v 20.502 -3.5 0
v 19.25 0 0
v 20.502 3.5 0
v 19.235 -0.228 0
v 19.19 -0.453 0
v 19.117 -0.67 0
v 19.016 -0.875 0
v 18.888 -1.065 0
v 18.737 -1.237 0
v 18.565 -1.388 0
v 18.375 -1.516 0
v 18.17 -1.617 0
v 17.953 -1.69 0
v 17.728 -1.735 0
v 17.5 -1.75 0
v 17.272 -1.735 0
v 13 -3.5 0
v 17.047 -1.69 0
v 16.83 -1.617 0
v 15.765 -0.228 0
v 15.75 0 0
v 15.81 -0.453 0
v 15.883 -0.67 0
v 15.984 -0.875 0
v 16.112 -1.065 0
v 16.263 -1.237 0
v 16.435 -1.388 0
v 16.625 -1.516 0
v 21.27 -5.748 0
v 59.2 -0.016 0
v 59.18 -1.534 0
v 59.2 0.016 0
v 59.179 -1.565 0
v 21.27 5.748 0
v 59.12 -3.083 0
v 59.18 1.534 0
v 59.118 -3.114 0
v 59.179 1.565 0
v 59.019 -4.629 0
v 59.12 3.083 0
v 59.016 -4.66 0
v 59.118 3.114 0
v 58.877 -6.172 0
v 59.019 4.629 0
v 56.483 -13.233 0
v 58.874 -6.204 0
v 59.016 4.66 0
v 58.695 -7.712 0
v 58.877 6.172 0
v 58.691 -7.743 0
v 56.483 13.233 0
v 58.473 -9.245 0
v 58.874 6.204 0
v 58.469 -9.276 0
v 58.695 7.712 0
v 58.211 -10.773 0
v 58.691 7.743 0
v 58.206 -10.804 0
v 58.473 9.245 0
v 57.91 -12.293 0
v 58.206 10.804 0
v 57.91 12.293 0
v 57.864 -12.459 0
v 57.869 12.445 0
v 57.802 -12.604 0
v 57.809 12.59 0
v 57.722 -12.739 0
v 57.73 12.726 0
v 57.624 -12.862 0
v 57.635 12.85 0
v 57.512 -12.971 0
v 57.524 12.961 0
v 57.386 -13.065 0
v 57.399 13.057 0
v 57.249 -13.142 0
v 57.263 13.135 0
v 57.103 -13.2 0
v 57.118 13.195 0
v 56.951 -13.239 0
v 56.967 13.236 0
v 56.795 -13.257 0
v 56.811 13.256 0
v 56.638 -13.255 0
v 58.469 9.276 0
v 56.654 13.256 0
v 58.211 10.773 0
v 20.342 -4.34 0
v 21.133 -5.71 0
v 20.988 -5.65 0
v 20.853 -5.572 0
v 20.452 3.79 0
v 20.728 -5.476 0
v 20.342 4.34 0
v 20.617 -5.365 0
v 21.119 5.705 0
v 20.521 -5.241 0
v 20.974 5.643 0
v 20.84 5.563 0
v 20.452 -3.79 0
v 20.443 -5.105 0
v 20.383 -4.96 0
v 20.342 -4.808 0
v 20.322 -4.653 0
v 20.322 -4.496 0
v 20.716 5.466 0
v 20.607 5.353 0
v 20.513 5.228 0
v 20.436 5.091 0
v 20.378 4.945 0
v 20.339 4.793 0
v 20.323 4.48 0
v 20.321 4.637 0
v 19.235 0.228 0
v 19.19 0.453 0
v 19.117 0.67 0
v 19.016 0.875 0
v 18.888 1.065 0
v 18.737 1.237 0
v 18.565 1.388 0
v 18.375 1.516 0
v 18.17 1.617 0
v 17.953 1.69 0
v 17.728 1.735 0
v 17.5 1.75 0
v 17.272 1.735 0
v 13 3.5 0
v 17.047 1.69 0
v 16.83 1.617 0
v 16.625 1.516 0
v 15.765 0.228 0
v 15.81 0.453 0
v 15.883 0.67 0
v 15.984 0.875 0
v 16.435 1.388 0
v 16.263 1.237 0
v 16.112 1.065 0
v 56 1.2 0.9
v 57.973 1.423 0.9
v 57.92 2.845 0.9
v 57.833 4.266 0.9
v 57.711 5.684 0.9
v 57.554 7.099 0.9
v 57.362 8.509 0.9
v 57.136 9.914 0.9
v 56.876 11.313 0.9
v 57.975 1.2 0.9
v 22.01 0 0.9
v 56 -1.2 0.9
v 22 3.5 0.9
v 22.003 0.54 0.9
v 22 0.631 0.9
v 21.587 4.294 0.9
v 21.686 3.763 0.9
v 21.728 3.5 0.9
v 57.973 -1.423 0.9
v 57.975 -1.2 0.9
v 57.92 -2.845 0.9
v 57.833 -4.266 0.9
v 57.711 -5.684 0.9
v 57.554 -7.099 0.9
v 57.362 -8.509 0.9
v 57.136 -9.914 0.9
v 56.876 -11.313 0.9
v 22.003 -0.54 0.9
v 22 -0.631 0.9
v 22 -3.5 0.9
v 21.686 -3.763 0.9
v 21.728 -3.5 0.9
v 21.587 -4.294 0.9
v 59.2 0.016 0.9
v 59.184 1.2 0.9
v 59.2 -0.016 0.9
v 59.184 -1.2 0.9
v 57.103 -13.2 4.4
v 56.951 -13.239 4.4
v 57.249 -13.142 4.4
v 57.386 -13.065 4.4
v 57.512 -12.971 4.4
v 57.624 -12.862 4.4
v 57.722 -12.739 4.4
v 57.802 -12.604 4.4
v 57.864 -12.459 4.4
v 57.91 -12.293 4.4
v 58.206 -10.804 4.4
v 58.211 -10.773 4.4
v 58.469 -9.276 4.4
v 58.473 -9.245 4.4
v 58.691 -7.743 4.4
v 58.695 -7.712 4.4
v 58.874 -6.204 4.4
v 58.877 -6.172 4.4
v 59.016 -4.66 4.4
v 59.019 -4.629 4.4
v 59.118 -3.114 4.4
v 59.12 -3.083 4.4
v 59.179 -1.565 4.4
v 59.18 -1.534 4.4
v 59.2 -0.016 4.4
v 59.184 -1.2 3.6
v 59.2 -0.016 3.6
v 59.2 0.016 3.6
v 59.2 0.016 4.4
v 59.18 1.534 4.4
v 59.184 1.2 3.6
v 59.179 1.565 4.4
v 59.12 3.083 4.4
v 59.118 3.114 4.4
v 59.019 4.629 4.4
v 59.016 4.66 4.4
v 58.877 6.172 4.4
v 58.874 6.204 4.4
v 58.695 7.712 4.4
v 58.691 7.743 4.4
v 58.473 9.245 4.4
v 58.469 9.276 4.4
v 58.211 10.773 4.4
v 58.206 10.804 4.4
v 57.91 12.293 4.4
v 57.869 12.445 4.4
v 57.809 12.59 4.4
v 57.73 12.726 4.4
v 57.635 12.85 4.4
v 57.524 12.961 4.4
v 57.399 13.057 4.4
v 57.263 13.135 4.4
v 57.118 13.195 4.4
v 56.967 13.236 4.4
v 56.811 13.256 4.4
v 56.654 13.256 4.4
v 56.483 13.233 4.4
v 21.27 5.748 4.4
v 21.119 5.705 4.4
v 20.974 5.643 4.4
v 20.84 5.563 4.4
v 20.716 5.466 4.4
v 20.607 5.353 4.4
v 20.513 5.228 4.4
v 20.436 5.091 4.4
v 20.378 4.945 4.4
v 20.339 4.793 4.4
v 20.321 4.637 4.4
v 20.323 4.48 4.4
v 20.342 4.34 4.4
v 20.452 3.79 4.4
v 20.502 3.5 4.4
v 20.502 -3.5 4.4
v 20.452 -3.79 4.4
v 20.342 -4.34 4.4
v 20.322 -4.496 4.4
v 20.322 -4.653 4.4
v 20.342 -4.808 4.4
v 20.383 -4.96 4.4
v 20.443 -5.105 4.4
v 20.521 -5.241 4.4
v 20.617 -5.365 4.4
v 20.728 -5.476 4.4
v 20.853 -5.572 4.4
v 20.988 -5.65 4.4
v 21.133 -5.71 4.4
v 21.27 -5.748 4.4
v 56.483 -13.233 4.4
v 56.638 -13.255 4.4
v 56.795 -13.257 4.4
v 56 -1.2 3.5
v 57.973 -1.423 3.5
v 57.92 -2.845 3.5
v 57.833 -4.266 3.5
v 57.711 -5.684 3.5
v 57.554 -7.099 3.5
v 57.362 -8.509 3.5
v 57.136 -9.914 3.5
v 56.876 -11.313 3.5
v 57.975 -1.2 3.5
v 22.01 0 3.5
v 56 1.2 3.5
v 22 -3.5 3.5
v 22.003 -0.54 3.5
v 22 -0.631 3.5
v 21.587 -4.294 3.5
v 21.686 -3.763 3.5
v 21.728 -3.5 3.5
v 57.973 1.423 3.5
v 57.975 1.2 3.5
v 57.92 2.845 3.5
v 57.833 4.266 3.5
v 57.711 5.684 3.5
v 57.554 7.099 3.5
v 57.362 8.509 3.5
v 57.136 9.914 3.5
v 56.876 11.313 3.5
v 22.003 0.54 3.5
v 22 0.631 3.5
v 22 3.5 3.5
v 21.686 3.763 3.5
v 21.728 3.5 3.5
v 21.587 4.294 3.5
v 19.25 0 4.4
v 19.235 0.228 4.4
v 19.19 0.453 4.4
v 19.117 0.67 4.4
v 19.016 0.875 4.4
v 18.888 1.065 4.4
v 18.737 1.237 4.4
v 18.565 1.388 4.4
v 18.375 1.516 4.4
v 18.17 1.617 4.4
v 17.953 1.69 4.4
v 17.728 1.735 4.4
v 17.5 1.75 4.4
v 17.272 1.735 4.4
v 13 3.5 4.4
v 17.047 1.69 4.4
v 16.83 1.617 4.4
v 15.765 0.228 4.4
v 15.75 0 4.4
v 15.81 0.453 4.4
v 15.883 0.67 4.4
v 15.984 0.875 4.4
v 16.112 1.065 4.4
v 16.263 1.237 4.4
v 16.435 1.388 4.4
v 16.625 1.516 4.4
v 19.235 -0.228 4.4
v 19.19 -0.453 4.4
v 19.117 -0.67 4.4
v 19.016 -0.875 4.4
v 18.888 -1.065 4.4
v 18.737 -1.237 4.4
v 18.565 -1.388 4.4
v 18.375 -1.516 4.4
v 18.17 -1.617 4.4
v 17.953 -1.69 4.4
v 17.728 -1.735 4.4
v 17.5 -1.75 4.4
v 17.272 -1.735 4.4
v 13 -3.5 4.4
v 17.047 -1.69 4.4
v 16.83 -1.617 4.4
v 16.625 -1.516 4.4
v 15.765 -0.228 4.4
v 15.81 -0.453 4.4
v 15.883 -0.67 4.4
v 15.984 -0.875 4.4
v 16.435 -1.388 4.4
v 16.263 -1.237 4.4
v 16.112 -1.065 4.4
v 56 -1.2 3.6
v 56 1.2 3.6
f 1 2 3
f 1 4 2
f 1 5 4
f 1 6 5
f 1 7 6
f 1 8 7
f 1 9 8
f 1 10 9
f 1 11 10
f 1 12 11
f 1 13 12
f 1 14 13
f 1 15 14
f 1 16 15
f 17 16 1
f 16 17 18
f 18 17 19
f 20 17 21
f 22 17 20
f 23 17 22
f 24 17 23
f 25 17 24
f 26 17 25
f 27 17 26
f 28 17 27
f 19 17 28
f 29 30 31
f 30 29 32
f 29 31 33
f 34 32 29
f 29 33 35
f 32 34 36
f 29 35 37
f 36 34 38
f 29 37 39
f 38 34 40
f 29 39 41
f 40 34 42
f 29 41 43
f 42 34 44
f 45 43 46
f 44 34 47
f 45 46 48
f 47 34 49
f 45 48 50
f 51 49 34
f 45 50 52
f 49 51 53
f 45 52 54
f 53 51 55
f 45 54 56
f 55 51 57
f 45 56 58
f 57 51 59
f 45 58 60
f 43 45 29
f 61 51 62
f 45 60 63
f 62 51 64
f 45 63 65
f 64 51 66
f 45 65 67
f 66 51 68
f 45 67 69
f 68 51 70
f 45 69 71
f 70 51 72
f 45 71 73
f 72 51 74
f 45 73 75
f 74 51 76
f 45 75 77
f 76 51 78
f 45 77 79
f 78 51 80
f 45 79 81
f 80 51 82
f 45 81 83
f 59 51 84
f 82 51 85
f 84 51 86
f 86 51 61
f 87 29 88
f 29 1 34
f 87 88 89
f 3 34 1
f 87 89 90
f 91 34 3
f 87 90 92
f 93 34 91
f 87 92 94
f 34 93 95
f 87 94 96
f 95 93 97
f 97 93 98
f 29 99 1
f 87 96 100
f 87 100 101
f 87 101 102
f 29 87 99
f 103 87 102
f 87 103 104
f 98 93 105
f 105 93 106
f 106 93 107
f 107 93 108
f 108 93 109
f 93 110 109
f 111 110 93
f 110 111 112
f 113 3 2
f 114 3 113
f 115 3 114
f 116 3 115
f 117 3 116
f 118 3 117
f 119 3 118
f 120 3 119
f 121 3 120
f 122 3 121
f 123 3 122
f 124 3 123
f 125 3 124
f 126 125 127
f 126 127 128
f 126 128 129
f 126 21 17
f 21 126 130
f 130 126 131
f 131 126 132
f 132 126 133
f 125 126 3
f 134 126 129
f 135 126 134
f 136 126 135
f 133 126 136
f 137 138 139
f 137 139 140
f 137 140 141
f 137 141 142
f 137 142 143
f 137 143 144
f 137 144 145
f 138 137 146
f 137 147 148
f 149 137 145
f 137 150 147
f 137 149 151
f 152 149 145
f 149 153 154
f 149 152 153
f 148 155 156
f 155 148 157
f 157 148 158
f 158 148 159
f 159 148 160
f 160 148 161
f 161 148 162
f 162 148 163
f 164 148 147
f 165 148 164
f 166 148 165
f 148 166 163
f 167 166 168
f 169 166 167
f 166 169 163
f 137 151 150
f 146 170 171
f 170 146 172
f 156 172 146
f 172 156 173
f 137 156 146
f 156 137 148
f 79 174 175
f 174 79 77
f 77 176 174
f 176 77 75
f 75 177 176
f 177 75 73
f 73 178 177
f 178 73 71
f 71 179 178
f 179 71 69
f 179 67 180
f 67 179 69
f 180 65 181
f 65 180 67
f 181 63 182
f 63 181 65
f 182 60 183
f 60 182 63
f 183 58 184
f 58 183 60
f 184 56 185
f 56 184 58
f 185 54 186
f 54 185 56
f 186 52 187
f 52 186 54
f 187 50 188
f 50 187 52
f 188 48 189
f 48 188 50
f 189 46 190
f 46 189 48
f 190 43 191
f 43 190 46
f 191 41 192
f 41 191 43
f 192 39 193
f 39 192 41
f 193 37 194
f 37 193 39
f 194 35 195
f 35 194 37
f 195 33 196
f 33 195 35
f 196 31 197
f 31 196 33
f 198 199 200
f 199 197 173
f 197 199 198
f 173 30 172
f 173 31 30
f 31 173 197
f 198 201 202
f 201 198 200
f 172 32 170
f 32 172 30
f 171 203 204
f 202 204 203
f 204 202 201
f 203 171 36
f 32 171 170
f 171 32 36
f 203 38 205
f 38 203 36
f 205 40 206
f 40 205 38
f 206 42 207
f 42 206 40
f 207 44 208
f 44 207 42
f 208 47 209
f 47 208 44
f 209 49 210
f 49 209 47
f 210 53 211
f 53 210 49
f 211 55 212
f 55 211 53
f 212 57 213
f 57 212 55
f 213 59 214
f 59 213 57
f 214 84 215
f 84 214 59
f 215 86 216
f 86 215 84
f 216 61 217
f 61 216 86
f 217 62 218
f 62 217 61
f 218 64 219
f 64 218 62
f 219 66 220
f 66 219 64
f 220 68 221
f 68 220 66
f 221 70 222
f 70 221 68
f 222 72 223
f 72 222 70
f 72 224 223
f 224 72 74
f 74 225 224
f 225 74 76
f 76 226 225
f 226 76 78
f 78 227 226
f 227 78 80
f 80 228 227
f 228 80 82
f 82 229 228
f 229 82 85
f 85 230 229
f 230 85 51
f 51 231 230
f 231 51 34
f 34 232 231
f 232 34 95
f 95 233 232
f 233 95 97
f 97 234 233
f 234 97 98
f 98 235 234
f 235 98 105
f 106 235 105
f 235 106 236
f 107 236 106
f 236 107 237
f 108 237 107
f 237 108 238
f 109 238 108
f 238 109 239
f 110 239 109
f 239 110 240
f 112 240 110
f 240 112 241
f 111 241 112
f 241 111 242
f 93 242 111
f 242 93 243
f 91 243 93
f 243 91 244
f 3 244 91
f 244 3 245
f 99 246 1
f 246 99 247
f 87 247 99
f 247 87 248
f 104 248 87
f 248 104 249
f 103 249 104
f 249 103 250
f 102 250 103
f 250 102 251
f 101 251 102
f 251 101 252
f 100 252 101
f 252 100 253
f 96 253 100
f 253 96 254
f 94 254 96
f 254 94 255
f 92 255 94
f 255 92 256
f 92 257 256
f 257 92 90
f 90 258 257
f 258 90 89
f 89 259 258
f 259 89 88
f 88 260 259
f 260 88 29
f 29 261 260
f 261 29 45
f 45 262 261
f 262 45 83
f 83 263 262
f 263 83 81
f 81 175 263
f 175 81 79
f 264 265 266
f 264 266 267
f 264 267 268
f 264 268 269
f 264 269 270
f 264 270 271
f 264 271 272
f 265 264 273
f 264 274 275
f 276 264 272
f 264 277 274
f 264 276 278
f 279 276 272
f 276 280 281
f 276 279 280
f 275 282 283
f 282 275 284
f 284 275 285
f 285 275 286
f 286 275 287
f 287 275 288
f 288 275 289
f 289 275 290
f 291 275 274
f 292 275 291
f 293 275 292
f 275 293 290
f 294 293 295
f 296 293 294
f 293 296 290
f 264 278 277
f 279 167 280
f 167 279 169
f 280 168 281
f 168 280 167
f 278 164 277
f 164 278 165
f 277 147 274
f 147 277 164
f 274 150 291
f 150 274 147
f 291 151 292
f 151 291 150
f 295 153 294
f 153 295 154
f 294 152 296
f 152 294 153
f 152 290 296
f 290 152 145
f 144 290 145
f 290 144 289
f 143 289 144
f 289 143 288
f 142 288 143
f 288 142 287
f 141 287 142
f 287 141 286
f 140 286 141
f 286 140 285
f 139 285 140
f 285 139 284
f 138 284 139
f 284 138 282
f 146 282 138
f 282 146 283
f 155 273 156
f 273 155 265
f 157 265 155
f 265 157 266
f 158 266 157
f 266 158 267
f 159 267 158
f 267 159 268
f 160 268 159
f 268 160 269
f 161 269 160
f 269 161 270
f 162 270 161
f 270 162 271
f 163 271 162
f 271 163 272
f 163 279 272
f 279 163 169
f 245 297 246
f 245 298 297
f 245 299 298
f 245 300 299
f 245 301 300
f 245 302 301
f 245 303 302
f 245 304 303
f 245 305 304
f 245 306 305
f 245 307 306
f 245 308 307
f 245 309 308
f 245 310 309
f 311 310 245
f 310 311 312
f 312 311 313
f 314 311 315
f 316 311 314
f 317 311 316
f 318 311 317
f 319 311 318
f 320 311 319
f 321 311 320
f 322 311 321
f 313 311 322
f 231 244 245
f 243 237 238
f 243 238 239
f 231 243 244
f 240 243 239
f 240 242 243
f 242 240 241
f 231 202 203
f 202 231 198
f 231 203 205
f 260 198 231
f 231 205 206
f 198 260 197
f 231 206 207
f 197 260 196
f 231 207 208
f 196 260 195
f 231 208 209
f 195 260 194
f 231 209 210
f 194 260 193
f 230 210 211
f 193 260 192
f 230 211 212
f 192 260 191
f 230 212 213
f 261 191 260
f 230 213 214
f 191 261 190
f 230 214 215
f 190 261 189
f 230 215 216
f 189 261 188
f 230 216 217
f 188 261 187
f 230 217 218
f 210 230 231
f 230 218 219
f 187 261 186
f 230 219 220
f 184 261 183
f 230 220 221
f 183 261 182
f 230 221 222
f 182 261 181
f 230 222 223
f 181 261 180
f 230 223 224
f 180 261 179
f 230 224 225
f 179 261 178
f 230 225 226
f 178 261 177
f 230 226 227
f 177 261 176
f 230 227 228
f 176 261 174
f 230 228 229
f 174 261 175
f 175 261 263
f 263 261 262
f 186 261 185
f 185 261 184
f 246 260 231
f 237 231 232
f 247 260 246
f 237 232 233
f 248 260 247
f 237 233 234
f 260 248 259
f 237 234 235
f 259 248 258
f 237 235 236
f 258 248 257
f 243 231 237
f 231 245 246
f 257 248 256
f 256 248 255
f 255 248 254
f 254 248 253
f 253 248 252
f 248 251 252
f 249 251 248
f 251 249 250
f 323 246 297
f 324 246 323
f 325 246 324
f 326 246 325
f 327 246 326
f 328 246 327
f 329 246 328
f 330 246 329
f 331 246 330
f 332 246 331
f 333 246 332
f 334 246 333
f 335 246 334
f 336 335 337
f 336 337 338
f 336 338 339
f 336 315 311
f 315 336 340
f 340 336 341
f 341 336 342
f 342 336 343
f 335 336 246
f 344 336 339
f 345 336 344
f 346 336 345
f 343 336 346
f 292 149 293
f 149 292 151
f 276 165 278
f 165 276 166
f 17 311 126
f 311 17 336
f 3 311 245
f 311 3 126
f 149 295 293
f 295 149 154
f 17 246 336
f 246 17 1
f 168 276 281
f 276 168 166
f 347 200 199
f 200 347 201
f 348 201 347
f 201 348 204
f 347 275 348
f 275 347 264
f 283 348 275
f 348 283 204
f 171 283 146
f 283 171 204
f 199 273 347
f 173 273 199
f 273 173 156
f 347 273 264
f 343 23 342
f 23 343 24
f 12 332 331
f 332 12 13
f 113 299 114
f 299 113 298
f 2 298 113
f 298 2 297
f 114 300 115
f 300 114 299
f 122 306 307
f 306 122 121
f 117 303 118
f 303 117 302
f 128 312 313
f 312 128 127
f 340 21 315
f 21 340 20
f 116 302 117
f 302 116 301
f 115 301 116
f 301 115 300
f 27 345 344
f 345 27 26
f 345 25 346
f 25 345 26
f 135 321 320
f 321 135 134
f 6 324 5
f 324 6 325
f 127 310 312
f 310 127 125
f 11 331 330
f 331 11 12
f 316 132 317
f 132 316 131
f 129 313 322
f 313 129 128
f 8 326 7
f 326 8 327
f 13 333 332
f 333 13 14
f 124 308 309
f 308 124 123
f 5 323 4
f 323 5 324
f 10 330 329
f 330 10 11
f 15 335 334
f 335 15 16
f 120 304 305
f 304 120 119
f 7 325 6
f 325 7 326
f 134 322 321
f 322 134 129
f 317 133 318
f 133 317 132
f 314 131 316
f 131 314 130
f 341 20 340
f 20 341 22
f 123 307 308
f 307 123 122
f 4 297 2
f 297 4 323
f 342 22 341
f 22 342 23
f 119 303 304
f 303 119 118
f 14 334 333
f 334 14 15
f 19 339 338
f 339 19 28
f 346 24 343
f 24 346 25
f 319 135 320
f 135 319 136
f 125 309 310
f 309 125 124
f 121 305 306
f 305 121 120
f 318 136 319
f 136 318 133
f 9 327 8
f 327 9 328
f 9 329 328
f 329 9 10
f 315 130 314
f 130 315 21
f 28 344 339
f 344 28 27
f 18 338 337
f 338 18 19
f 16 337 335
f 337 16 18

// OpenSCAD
// file: parameters.scad
// =============================================================================
// Gen-U Vernier + flux-claw AFPM — WOUND-AWARE (HARD GATE)
// 16-pole rotor (16×Ø20) + 48×Ø5 claw/edge flux assists; 12-coil vernier stator
// Optional mild-steel washer registers in BOM for claw return paths.
// =============================================================================

wire_awg            = 26;
wire_od             = 0.45;
turns               = 140;      // vernier: more turns for low-RPM band
fill                = 0.70;
layers_per_face     = 2;
wind_build_axial    = layers_per_face * wire_od * fill;   // 0.63
wind_build_radial   = 3 * wire_od * fill;                 // 0.945

coil_id_r           = 22.0;
coil_od_r           = 58.0;
span_deg            = 24.0;     // 12 stations; vernier vs 16 poles
former_web          = 2.6;
flange_t            = 0.9;
wall                = 1.2;
slot_w              = 2.4;
mount_hole          = 3.5;
tab_len             = 7.0;

former_bare_h       = former_web + 2 * flange_t;            // 4.4
coil_envelope_h     = former_bare_h + 2 * wind_build_axial; // 5.66

run_clear           = 0.85;     // prefer ≥0.85 for vernier stack
gap_spacer_h        = run_clear + wind_build_axial;         // 1.48
// Single-rotor AFPM: magnet ↔ wound = run_clear (spacer math)
// (No dual-rotor m2m; stator faces one magnet plane)

coil_stations       = 12;
bay_r_in            = coil_id_r - 2.0 - wind_build_radial;
bay_r_out           = coil_od_r + 2.0 + wind_build_radial;
bay_span            = span_deg + 4.0;
bay_offset          = 2.0;
bay_depth           = former_bare_h + wind_build_axial;
stator_back_web     = 2.5;
stator_thick        = bay_depth + stator_back_web;
stator_od           = 156.0;
shaft_clear_stator  = 36.0;
coil_mount_r        = 28.0;

// Rotor: ALL 16×Ø20 as poles + 48×Ø5 claw/edge (3 rings × 16)
large_pocket_d      = 20.3;
small_pocket_d      = 5.3;
pocket_h            = 5.2;
large_n             = 16;       // vernier poles
R_large             = 50.0;
R_claw_inner        = 36.0;     // flux-claw / edge assist rings
R_claw_mid          = 50.0;
R_claw_outer        = 64.0;
carrier_od          = 152.0;
carrier_thick       = 8.0;
hub_h               = 10.0;
hub_od              = 30.0;
// Steel return register pocket (optional washer Ø25×1)
steel_washer_d      = 25.4;
steel_washer_pocket = 1.2;
steel_register_r    = 50.0;

shaft_bore          = 8.35;
bearing_d           = 21.85;
bearing_h           = 7.2;
m3_clear            = 3.5;
bolt_r_inner        = 36.0;
bolt_n_inner        = 6;
flange_bolt_r       = 72.0;
flange_bolt_n       = 6;
brace_r             = 68.0;
brace_d             = 4.3;
brace_n             = 4;

spacer_pad_od       = 14.0;
spacer_pad_id       = m3_clear;
endbell_od          = 156.0;
endbell_thick       = 8.0;
endbell_shaft_clear = 10.0;

// Claw flux pad (printed) — seats optional steel washer behind rotor
claw_pad_od         = 30.0;
claw_pad_h          = 3.0;

$fn = 64;
// main file
// Gen-U vernier pancake — print ×12
// WOUND: wind_build_axial=0.63, coil_envelope_h=5.66, magnet↔wound=0.85
include <parameters.scad>;
$fn = 48;
module sector_2d(r_in, r_out, ang) {
    polygon([
        for (a = [-ang/2 : ang/16 : ang/2]) [r_in*cos(a), r_in*sin(a)],
        for (a = [ang/2 : -ang/16 : -ang/2]) [r_out*cos(a), r_out*sin(a)]
    ]);
}
module flange() {
    linear_extrude(flange_t) offset(r=wall) sector_2d(coil_id_r, coil_od_r, span_deg);
}
difference() {
    union() {
        flange();
        translate([0, 0, flange_t])
            linear_extrude(former_web)
                difference() {
                    offset(r=wall) sector_2d(coil_id_r, coil_od_r, span_deg);
                    sector_2d(coil_id_r + 0.01, coil_od_r - 0.01, span_deg - 1.5);
                }
        translate([0, 0, flange_t + former_web]) flange();
        translate([coil_id_r - tab_len - 2, -3.5, 0])
            cube([tab_len + 2, 7, former_bare_h]);
    }
    translate([coil_od_r - 2, -slot_w/2, flange_t])
        cube([wall + 4, slot_w, former_web + 0.1]);
    translate([coil_id_r - tab_len/2 - 1, 0, -0.1])
        cylinder(d=mount_hole, h=former_bare_h + 1);
}
